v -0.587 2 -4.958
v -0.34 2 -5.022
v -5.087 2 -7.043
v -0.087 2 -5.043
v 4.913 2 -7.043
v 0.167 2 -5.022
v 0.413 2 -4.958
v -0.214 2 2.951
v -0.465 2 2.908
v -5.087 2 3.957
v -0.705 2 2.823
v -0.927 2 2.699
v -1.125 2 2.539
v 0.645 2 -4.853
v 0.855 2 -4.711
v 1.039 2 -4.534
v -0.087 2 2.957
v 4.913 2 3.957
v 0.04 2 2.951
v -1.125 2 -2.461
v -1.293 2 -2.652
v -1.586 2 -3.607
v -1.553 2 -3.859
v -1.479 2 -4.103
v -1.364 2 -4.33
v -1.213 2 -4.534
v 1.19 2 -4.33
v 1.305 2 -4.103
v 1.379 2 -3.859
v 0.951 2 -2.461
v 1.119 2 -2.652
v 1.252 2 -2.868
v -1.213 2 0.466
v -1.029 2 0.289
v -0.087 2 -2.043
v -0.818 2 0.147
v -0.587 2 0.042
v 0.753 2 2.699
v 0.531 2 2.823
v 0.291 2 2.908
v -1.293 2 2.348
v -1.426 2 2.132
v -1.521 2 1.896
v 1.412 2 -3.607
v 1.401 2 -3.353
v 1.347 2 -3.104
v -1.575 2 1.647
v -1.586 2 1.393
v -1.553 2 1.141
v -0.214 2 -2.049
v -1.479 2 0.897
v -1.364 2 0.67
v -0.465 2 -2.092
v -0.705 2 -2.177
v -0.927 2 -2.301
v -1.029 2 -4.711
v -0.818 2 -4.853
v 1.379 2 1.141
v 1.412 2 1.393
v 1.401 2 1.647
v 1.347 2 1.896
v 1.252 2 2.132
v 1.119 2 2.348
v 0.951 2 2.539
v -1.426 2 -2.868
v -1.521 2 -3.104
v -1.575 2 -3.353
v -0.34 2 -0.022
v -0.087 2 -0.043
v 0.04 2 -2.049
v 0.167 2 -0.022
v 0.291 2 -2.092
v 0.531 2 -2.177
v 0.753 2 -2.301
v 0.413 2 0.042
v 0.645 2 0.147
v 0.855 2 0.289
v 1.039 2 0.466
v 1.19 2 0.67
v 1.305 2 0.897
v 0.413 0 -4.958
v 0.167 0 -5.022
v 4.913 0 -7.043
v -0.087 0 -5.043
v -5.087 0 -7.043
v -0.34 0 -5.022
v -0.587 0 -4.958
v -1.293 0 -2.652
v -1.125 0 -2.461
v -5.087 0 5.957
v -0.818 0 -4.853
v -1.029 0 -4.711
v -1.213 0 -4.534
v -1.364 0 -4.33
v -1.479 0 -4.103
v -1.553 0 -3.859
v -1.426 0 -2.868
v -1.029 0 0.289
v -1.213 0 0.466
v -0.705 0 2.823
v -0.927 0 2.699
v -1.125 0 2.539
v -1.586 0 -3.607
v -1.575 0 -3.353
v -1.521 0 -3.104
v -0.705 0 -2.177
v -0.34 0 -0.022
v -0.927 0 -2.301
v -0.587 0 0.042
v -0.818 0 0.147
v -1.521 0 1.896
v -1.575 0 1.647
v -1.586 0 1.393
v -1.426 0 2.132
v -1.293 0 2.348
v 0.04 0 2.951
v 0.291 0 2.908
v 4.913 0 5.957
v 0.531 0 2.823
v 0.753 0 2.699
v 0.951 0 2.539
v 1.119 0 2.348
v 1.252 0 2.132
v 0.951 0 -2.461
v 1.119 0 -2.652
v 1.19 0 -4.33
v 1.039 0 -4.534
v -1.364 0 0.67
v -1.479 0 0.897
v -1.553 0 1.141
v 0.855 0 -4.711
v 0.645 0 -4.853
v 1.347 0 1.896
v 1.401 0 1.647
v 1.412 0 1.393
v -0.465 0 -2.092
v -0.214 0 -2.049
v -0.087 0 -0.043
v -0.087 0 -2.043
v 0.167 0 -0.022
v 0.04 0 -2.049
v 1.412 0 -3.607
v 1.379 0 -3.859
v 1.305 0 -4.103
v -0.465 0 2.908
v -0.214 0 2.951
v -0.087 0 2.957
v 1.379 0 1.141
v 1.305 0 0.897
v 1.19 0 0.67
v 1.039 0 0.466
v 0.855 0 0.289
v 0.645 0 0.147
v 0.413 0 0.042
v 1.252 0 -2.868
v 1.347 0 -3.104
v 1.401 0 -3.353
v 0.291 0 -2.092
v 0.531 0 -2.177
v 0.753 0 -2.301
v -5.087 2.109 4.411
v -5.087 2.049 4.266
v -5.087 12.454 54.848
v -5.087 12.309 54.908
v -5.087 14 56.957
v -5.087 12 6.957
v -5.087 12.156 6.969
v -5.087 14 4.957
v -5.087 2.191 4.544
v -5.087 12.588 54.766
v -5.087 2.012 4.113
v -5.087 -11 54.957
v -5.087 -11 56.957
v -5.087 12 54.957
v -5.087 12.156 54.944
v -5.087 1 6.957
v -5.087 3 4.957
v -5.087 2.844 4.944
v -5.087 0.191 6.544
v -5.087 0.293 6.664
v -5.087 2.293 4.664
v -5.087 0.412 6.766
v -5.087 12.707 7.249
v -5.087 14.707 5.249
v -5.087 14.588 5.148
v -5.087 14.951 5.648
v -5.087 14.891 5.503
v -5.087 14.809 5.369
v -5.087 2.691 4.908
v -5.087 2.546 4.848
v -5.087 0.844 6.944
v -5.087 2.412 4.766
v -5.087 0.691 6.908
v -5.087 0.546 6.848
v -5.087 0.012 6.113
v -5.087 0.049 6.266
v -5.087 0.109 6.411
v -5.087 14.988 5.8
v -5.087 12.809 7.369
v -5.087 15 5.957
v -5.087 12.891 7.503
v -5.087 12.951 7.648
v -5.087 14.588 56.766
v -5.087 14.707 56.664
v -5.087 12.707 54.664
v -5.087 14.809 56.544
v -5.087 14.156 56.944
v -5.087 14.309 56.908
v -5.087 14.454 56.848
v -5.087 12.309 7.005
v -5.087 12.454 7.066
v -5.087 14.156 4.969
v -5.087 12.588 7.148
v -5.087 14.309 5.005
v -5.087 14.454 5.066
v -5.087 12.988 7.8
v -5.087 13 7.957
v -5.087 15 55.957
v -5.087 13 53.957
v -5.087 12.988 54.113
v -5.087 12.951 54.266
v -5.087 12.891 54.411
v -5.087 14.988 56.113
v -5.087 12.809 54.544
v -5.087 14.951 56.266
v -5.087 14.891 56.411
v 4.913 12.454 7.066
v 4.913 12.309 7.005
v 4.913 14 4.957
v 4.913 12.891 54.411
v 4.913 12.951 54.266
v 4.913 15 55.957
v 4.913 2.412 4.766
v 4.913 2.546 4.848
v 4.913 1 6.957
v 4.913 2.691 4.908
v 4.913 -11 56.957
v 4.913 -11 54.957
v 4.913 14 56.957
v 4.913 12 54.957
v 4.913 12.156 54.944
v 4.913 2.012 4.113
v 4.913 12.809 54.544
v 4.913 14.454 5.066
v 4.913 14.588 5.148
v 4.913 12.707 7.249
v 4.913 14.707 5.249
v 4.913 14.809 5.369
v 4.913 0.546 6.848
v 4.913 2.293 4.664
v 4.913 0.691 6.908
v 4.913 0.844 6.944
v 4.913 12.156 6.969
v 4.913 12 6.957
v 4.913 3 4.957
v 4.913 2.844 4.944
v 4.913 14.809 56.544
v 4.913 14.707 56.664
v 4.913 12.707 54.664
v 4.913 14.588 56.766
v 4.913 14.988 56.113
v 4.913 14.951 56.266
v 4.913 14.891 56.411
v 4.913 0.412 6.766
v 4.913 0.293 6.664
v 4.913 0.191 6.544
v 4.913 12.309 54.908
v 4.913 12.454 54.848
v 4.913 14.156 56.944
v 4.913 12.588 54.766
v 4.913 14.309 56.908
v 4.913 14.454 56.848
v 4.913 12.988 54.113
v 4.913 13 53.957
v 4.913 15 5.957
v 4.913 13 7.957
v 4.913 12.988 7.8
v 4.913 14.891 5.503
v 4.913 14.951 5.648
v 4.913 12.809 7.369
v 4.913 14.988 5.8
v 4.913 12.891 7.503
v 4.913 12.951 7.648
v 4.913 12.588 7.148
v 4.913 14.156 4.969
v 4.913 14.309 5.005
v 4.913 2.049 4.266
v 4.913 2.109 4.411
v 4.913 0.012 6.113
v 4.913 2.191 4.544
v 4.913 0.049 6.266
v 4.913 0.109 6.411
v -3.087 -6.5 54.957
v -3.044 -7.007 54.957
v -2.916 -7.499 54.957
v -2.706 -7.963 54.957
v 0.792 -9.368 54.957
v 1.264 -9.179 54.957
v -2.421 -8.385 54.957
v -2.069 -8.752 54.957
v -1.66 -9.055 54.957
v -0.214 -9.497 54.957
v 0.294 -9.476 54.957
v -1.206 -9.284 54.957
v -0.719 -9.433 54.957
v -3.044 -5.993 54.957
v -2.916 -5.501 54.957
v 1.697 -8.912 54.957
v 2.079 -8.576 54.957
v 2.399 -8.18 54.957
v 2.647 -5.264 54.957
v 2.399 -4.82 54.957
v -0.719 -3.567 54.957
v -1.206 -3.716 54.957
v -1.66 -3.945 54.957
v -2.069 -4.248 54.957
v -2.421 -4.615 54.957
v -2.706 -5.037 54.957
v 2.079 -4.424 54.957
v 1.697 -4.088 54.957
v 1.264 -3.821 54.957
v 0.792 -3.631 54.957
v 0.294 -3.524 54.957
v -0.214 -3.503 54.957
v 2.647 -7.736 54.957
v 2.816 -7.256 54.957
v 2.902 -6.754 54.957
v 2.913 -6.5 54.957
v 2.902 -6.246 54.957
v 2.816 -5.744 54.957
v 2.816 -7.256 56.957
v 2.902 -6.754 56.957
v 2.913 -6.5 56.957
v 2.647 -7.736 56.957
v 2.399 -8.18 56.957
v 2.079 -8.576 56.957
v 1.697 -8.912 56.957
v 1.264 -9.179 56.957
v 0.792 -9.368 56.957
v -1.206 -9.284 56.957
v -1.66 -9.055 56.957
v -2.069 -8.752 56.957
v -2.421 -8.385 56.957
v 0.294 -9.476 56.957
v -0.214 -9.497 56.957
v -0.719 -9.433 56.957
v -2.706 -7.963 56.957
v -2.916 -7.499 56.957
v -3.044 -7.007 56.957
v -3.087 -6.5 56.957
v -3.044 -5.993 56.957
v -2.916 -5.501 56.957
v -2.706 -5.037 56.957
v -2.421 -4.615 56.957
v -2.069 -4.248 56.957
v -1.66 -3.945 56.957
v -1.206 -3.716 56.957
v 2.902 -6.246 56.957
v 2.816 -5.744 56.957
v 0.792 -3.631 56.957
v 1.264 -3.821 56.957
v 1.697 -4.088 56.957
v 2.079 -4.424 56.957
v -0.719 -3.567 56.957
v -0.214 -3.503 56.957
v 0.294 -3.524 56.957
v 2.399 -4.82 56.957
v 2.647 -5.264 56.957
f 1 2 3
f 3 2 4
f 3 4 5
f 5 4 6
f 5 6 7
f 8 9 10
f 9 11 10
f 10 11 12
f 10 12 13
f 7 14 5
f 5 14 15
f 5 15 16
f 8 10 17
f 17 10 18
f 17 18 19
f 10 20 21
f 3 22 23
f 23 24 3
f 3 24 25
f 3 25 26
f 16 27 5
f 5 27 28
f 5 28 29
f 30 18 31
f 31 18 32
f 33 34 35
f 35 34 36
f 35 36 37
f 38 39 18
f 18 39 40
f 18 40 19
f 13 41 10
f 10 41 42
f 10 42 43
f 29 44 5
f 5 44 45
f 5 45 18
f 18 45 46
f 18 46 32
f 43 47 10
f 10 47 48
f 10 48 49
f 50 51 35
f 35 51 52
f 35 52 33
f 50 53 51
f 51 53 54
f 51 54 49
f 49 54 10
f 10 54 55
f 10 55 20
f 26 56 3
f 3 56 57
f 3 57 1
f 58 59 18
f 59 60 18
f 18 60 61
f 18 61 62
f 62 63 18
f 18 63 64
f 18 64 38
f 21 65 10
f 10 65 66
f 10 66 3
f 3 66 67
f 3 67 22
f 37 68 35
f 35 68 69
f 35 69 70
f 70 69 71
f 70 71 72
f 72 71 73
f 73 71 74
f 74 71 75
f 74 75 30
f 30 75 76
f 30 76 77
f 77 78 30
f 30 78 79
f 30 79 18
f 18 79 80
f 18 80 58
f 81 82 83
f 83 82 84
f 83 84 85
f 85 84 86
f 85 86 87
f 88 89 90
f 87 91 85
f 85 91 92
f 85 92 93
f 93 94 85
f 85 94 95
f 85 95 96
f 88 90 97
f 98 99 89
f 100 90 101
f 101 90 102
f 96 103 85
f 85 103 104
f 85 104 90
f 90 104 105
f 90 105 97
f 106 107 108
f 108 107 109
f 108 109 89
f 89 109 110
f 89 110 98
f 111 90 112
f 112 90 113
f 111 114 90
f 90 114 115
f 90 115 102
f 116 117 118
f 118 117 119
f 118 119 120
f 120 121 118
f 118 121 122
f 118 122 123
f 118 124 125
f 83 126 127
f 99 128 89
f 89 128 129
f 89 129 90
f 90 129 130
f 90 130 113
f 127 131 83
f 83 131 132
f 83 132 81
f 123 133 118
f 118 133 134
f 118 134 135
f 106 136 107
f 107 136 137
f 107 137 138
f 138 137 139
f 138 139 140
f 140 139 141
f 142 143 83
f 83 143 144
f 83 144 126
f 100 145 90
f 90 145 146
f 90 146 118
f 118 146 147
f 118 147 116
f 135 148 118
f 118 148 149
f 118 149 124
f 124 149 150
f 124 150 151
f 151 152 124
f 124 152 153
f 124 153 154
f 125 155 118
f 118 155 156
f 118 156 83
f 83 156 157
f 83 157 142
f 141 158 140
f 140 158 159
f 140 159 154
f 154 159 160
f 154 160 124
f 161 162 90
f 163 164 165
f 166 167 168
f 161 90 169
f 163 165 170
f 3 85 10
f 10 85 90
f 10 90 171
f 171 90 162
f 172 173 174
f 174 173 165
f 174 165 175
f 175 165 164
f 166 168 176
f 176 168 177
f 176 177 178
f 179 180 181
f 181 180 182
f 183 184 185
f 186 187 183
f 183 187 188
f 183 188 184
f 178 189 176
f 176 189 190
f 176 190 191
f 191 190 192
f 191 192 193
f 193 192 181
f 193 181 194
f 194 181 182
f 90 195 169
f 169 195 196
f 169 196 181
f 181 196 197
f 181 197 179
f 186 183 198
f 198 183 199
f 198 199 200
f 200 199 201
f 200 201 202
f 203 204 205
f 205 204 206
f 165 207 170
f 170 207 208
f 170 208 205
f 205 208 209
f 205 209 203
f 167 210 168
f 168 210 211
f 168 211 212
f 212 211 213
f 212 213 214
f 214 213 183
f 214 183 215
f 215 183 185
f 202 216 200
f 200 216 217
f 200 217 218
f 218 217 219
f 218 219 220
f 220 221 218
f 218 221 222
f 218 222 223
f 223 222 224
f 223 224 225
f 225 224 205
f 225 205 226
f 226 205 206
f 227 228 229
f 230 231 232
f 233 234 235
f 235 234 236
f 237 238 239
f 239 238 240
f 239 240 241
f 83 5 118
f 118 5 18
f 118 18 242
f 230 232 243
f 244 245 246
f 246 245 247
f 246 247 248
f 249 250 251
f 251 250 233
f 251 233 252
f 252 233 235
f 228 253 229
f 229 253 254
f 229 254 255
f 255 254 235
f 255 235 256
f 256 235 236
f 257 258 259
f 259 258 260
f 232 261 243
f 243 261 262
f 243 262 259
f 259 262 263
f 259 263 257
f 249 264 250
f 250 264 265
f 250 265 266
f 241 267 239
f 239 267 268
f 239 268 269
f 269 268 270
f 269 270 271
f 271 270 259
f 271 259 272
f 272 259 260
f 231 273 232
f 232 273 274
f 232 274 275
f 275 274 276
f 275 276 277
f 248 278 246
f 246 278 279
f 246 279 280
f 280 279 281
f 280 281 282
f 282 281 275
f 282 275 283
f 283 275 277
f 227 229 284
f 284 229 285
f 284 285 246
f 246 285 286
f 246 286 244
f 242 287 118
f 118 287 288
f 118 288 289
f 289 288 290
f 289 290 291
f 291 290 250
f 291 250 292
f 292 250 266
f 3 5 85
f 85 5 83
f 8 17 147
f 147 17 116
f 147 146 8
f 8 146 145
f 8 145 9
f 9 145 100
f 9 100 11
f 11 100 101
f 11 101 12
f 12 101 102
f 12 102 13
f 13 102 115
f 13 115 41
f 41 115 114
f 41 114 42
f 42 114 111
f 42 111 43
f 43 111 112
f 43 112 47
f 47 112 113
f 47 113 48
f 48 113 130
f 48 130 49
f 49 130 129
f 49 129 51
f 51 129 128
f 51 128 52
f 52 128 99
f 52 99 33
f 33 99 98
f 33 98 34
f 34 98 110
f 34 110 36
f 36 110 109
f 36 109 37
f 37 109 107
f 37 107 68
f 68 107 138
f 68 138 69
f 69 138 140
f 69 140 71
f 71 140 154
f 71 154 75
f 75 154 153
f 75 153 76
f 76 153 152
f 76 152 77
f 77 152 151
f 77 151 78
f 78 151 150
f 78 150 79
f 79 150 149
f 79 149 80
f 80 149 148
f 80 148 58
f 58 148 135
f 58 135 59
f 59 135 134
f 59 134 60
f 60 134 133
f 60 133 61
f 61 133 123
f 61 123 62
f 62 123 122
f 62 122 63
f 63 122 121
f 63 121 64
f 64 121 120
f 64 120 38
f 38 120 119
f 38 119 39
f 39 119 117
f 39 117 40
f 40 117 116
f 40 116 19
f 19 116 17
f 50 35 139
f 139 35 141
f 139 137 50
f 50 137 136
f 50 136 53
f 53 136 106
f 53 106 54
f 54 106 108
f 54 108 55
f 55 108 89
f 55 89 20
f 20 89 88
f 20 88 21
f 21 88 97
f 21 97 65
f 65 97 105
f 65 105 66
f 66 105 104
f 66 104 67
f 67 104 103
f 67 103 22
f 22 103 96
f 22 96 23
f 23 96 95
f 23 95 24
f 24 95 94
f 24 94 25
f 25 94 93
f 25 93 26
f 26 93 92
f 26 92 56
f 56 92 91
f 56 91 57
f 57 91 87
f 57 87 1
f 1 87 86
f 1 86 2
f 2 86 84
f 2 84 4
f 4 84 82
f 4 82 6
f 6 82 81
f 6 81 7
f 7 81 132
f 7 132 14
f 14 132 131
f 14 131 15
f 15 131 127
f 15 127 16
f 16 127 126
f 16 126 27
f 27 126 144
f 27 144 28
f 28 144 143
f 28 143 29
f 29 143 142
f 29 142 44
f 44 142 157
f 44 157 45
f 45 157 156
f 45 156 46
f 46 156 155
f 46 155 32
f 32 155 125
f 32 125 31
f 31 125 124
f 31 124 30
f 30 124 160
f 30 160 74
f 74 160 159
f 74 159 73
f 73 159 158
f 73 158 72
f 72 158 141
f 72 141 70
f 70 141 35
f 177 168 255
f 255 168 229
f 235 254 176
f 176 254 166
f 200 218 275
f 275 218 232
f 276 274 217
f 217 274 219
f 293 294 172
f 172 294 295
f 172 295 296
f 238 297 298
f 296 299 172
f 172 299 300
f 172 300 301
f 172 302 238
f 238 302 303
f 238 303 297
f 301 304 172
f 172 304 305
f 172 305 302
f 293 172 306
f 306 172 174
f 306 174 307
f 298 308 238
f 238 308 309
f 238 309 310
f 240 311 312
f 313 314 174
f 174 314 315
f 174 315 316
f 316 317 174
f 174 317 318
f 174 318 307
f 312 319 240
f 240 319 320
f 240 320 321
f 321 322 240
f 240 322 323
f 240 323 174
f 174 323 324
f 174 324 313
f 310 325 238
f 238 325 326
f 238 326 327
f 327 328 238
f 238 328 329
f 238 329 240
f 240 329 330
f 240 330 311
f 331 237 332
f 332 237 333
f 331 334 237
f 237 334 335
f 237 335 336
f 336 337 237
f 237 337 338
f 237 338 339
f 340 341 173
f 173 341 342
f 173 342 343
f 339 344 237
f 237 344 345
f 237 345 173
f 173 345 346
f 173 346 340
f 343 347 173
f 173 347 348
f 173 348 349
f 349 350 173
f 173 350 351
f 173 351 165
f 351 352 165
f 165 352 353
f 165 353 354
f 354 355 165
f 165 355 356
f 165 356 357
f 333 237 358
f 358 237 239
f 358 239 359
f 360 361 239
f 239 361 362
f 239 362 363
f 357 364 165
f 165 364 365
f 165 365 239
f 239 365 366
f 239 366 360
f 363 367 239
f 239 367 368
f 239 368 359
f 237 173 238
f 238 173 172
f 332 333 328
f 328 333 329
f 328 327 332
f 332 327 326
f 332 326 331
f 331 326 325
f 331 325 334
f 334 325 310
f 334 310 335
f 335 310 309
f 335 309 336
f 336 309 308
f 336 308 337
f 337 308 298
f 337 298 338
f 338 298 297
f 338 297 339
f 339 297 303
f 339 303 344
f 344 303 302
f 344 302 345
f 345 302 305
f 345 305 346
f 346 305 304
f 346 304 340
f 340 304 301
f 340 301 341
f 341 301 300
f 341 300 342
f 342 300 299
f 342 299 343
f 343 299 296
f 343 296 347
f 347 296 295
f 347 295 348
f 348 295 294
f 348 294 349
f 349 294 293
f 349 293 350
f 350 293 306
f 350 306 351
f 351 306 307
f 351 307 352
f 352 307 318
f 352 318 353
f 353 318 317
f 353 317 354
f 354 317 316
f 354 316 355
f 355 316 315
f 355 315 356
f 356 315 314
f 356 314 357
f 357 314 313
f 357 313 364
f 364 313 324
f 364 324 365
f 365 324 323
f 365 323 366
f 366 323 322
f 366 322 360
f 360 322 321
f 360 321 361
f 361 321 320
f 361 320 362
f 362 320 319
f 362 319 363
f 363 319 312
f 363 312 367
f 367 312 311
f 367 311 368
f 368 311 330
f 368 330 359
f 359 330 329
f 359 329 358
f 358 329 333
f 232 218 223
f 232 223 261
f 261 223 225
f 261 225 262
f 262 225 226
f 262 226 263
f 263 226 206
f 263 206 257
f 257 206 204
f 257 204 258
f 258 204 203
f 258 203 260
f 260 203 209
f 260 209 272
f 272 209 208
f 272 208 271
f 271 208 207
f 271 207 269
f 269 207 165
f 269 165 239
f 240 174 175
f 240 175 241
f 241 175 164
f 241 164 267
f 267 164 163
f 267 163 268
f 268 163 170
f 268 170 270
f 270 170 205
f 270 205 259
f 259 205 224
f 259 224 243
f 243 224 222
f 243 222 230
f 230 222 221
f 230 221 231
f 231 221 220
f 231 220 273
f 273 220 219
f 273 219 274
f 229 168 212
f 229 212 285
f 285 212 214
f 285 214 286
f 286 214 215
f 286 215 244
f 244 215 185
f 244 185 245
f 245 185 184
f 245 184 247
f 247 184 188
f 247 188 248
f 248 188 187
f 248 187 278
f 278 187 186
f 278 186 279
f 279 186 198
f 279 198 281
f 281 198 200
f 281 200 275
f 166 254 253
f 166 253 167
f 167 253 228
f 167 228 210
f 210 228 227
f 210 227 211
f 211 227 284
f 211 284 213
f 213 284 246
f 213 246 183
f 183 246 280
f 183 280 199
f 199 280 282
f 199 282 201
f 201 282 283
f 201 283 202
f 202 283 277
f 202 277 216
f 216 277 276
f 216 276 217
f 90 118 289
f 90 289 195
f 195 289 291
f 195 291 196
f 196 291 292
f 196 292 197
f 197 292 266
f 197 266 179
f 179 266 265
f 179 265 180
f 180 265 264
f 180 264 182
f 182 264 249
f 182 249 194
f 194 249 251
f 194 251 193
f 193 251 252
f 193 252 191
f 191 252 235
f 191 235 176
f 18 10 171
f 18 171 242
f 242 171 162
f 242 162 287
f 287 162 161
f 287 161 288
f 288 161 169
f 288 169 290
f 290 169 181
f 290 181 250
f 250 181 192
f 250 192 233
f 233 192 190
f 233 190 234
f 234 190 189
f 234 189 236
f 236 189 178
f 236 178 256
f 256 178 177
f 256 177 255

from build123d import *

# Parameters (mm, degrees)
SKETCH1_W           = 10
SKETCH1_H           = 12
SKETCH1_R           = 1.5
BOSS_EXTRUDE1_DEPTH = 2
SKETCH2_W           = 10
SKETCH2_H           = 13
BOSS_EXTRUDE2_DEPTH = 2
SKETCH3_W           = 10
SKETCH3_H           = 50
BOSS_EXTRUDE3_DEPTH = 2
SKETCH4_W           = 10
SKETCH4_H           = 26
SKETCH4_R           = 3
BOSS_EXTRUDE4_DEPTH = 2
FILLET1_R           = 1
FILLET2_R           = 1
FILLET3_R           = 1
FILLET4_R           = 1
FILLET5_R           = 1
FILLET6_R           = 1


with BuildPart() as part:
    # Sketch1 → Boss-Extrude1 (new body)
    with BuildSketch(Plane(origin=(0, 0, 0), x_dir=(1, 0, 0), z_dir=(0, 1, 0))):
        with Locations((-0.086956522, 1.043478261)):
            Rectangle(SKETCH1_W, SKETCH1_H)
        with Locations(Location((-0.086956522, -1.456521739, 0), (0, 0, 270))):
            Circle(SKETCH1_R, mode=Mode.SUBTRACT)
        with Locations(Location((-0.086956522, 3.543478261, 0), (0, 0, 270))):
            Circle(SKETCH1_R, mode=Mode.SUBTRACT)
    extrude(amount=BOSS_EXTRUDE1_DEPTH)

    # Sketch2 → Boss-Extrude2 (add)
    with BuildSketch(Plane.XY.offset(4.956521739)):
        with Locations((-0.086956522, 6.5)):
            Rectangle(SKETCH2_W, SKETCH2_H)
    extrude(amount=BOSS_EXTRUDE2_DEPTH)

    # Sketch3 → Boss-Extrude3 (add)
    with BuildSketch(Plane(origin=(0, 13, 0), x_dir=(1, 0, 0), z_dir=(0, 1, 0))):
        with Locations((-0.086956522, -29.956521739)):
            Rectangle(SKETCH3_W, SKETCH3_H)
    extrude(amount=BOSS_EXTRUDE3_DEPTH)

    # Sketch4 → Boss-Extrude4 (add)
    with BuildSketch(Plane.XY.offset(54.956521739)):
        with Locations((-0.086956522, 2)):
            Rectangle(SKETCH4_W, SKETCH4_H)
        with Locations((-0.086956522, -6.5)):
            Circle(SKETCH4_R, mode=Mode.SUBTRACT)
    extrude(amount=BOSS_EXTRUDE4_DEPTH)

    # Fillet1
    fillet1_edges = [part.edges().sort_by_distance(p)[0] for p in [
        (-0.086956522, 15, 56.956521739),
    ]]
    fillet(fillet1_edges, radius=FILLET1_R)

    # Fillet2
    fillet2_edges = [part.edges().sort_by_distance(p)[0] for p in [
        (-0.086956522, 13, 54.956521739),
    ]]
    fillet(fillet2_edges, radius=FILLET2_R)

    # Fillet3
    fillet3_edges = [part.edges().sort_by_distance(p)[0] for p in [
        (-0.086956522, 15, 4.956521739),
    ]]
    fillet(fillet3_edges, radius=FILLET3_R)

    # Fillet4
    fillet4_edges = [part.edges().sort_by_distance(p)[0] for p in [
        (-0.086956522, 13, 6.956521739),
    ]]
    fillet(fillet4_edges, radius=FILLET4_R)

    # Fillet5
    fillet5_edges = [part.edges().sort_by_distance(p)[0] for p in [
        (-0.086956522, 0, 6.956521739),
    ]]
    fillet(fillet5_edges, radius=FILLET5_R)

    # Fillet6
    fillet6_edges = [part.edges().sort_by_distance(p)[0] for p in [
        (-0.086956522, 2, 4.956521739),
    ]]
    fillet(fillet6_edges, radius=FILLET6_R)


solid = part.part
